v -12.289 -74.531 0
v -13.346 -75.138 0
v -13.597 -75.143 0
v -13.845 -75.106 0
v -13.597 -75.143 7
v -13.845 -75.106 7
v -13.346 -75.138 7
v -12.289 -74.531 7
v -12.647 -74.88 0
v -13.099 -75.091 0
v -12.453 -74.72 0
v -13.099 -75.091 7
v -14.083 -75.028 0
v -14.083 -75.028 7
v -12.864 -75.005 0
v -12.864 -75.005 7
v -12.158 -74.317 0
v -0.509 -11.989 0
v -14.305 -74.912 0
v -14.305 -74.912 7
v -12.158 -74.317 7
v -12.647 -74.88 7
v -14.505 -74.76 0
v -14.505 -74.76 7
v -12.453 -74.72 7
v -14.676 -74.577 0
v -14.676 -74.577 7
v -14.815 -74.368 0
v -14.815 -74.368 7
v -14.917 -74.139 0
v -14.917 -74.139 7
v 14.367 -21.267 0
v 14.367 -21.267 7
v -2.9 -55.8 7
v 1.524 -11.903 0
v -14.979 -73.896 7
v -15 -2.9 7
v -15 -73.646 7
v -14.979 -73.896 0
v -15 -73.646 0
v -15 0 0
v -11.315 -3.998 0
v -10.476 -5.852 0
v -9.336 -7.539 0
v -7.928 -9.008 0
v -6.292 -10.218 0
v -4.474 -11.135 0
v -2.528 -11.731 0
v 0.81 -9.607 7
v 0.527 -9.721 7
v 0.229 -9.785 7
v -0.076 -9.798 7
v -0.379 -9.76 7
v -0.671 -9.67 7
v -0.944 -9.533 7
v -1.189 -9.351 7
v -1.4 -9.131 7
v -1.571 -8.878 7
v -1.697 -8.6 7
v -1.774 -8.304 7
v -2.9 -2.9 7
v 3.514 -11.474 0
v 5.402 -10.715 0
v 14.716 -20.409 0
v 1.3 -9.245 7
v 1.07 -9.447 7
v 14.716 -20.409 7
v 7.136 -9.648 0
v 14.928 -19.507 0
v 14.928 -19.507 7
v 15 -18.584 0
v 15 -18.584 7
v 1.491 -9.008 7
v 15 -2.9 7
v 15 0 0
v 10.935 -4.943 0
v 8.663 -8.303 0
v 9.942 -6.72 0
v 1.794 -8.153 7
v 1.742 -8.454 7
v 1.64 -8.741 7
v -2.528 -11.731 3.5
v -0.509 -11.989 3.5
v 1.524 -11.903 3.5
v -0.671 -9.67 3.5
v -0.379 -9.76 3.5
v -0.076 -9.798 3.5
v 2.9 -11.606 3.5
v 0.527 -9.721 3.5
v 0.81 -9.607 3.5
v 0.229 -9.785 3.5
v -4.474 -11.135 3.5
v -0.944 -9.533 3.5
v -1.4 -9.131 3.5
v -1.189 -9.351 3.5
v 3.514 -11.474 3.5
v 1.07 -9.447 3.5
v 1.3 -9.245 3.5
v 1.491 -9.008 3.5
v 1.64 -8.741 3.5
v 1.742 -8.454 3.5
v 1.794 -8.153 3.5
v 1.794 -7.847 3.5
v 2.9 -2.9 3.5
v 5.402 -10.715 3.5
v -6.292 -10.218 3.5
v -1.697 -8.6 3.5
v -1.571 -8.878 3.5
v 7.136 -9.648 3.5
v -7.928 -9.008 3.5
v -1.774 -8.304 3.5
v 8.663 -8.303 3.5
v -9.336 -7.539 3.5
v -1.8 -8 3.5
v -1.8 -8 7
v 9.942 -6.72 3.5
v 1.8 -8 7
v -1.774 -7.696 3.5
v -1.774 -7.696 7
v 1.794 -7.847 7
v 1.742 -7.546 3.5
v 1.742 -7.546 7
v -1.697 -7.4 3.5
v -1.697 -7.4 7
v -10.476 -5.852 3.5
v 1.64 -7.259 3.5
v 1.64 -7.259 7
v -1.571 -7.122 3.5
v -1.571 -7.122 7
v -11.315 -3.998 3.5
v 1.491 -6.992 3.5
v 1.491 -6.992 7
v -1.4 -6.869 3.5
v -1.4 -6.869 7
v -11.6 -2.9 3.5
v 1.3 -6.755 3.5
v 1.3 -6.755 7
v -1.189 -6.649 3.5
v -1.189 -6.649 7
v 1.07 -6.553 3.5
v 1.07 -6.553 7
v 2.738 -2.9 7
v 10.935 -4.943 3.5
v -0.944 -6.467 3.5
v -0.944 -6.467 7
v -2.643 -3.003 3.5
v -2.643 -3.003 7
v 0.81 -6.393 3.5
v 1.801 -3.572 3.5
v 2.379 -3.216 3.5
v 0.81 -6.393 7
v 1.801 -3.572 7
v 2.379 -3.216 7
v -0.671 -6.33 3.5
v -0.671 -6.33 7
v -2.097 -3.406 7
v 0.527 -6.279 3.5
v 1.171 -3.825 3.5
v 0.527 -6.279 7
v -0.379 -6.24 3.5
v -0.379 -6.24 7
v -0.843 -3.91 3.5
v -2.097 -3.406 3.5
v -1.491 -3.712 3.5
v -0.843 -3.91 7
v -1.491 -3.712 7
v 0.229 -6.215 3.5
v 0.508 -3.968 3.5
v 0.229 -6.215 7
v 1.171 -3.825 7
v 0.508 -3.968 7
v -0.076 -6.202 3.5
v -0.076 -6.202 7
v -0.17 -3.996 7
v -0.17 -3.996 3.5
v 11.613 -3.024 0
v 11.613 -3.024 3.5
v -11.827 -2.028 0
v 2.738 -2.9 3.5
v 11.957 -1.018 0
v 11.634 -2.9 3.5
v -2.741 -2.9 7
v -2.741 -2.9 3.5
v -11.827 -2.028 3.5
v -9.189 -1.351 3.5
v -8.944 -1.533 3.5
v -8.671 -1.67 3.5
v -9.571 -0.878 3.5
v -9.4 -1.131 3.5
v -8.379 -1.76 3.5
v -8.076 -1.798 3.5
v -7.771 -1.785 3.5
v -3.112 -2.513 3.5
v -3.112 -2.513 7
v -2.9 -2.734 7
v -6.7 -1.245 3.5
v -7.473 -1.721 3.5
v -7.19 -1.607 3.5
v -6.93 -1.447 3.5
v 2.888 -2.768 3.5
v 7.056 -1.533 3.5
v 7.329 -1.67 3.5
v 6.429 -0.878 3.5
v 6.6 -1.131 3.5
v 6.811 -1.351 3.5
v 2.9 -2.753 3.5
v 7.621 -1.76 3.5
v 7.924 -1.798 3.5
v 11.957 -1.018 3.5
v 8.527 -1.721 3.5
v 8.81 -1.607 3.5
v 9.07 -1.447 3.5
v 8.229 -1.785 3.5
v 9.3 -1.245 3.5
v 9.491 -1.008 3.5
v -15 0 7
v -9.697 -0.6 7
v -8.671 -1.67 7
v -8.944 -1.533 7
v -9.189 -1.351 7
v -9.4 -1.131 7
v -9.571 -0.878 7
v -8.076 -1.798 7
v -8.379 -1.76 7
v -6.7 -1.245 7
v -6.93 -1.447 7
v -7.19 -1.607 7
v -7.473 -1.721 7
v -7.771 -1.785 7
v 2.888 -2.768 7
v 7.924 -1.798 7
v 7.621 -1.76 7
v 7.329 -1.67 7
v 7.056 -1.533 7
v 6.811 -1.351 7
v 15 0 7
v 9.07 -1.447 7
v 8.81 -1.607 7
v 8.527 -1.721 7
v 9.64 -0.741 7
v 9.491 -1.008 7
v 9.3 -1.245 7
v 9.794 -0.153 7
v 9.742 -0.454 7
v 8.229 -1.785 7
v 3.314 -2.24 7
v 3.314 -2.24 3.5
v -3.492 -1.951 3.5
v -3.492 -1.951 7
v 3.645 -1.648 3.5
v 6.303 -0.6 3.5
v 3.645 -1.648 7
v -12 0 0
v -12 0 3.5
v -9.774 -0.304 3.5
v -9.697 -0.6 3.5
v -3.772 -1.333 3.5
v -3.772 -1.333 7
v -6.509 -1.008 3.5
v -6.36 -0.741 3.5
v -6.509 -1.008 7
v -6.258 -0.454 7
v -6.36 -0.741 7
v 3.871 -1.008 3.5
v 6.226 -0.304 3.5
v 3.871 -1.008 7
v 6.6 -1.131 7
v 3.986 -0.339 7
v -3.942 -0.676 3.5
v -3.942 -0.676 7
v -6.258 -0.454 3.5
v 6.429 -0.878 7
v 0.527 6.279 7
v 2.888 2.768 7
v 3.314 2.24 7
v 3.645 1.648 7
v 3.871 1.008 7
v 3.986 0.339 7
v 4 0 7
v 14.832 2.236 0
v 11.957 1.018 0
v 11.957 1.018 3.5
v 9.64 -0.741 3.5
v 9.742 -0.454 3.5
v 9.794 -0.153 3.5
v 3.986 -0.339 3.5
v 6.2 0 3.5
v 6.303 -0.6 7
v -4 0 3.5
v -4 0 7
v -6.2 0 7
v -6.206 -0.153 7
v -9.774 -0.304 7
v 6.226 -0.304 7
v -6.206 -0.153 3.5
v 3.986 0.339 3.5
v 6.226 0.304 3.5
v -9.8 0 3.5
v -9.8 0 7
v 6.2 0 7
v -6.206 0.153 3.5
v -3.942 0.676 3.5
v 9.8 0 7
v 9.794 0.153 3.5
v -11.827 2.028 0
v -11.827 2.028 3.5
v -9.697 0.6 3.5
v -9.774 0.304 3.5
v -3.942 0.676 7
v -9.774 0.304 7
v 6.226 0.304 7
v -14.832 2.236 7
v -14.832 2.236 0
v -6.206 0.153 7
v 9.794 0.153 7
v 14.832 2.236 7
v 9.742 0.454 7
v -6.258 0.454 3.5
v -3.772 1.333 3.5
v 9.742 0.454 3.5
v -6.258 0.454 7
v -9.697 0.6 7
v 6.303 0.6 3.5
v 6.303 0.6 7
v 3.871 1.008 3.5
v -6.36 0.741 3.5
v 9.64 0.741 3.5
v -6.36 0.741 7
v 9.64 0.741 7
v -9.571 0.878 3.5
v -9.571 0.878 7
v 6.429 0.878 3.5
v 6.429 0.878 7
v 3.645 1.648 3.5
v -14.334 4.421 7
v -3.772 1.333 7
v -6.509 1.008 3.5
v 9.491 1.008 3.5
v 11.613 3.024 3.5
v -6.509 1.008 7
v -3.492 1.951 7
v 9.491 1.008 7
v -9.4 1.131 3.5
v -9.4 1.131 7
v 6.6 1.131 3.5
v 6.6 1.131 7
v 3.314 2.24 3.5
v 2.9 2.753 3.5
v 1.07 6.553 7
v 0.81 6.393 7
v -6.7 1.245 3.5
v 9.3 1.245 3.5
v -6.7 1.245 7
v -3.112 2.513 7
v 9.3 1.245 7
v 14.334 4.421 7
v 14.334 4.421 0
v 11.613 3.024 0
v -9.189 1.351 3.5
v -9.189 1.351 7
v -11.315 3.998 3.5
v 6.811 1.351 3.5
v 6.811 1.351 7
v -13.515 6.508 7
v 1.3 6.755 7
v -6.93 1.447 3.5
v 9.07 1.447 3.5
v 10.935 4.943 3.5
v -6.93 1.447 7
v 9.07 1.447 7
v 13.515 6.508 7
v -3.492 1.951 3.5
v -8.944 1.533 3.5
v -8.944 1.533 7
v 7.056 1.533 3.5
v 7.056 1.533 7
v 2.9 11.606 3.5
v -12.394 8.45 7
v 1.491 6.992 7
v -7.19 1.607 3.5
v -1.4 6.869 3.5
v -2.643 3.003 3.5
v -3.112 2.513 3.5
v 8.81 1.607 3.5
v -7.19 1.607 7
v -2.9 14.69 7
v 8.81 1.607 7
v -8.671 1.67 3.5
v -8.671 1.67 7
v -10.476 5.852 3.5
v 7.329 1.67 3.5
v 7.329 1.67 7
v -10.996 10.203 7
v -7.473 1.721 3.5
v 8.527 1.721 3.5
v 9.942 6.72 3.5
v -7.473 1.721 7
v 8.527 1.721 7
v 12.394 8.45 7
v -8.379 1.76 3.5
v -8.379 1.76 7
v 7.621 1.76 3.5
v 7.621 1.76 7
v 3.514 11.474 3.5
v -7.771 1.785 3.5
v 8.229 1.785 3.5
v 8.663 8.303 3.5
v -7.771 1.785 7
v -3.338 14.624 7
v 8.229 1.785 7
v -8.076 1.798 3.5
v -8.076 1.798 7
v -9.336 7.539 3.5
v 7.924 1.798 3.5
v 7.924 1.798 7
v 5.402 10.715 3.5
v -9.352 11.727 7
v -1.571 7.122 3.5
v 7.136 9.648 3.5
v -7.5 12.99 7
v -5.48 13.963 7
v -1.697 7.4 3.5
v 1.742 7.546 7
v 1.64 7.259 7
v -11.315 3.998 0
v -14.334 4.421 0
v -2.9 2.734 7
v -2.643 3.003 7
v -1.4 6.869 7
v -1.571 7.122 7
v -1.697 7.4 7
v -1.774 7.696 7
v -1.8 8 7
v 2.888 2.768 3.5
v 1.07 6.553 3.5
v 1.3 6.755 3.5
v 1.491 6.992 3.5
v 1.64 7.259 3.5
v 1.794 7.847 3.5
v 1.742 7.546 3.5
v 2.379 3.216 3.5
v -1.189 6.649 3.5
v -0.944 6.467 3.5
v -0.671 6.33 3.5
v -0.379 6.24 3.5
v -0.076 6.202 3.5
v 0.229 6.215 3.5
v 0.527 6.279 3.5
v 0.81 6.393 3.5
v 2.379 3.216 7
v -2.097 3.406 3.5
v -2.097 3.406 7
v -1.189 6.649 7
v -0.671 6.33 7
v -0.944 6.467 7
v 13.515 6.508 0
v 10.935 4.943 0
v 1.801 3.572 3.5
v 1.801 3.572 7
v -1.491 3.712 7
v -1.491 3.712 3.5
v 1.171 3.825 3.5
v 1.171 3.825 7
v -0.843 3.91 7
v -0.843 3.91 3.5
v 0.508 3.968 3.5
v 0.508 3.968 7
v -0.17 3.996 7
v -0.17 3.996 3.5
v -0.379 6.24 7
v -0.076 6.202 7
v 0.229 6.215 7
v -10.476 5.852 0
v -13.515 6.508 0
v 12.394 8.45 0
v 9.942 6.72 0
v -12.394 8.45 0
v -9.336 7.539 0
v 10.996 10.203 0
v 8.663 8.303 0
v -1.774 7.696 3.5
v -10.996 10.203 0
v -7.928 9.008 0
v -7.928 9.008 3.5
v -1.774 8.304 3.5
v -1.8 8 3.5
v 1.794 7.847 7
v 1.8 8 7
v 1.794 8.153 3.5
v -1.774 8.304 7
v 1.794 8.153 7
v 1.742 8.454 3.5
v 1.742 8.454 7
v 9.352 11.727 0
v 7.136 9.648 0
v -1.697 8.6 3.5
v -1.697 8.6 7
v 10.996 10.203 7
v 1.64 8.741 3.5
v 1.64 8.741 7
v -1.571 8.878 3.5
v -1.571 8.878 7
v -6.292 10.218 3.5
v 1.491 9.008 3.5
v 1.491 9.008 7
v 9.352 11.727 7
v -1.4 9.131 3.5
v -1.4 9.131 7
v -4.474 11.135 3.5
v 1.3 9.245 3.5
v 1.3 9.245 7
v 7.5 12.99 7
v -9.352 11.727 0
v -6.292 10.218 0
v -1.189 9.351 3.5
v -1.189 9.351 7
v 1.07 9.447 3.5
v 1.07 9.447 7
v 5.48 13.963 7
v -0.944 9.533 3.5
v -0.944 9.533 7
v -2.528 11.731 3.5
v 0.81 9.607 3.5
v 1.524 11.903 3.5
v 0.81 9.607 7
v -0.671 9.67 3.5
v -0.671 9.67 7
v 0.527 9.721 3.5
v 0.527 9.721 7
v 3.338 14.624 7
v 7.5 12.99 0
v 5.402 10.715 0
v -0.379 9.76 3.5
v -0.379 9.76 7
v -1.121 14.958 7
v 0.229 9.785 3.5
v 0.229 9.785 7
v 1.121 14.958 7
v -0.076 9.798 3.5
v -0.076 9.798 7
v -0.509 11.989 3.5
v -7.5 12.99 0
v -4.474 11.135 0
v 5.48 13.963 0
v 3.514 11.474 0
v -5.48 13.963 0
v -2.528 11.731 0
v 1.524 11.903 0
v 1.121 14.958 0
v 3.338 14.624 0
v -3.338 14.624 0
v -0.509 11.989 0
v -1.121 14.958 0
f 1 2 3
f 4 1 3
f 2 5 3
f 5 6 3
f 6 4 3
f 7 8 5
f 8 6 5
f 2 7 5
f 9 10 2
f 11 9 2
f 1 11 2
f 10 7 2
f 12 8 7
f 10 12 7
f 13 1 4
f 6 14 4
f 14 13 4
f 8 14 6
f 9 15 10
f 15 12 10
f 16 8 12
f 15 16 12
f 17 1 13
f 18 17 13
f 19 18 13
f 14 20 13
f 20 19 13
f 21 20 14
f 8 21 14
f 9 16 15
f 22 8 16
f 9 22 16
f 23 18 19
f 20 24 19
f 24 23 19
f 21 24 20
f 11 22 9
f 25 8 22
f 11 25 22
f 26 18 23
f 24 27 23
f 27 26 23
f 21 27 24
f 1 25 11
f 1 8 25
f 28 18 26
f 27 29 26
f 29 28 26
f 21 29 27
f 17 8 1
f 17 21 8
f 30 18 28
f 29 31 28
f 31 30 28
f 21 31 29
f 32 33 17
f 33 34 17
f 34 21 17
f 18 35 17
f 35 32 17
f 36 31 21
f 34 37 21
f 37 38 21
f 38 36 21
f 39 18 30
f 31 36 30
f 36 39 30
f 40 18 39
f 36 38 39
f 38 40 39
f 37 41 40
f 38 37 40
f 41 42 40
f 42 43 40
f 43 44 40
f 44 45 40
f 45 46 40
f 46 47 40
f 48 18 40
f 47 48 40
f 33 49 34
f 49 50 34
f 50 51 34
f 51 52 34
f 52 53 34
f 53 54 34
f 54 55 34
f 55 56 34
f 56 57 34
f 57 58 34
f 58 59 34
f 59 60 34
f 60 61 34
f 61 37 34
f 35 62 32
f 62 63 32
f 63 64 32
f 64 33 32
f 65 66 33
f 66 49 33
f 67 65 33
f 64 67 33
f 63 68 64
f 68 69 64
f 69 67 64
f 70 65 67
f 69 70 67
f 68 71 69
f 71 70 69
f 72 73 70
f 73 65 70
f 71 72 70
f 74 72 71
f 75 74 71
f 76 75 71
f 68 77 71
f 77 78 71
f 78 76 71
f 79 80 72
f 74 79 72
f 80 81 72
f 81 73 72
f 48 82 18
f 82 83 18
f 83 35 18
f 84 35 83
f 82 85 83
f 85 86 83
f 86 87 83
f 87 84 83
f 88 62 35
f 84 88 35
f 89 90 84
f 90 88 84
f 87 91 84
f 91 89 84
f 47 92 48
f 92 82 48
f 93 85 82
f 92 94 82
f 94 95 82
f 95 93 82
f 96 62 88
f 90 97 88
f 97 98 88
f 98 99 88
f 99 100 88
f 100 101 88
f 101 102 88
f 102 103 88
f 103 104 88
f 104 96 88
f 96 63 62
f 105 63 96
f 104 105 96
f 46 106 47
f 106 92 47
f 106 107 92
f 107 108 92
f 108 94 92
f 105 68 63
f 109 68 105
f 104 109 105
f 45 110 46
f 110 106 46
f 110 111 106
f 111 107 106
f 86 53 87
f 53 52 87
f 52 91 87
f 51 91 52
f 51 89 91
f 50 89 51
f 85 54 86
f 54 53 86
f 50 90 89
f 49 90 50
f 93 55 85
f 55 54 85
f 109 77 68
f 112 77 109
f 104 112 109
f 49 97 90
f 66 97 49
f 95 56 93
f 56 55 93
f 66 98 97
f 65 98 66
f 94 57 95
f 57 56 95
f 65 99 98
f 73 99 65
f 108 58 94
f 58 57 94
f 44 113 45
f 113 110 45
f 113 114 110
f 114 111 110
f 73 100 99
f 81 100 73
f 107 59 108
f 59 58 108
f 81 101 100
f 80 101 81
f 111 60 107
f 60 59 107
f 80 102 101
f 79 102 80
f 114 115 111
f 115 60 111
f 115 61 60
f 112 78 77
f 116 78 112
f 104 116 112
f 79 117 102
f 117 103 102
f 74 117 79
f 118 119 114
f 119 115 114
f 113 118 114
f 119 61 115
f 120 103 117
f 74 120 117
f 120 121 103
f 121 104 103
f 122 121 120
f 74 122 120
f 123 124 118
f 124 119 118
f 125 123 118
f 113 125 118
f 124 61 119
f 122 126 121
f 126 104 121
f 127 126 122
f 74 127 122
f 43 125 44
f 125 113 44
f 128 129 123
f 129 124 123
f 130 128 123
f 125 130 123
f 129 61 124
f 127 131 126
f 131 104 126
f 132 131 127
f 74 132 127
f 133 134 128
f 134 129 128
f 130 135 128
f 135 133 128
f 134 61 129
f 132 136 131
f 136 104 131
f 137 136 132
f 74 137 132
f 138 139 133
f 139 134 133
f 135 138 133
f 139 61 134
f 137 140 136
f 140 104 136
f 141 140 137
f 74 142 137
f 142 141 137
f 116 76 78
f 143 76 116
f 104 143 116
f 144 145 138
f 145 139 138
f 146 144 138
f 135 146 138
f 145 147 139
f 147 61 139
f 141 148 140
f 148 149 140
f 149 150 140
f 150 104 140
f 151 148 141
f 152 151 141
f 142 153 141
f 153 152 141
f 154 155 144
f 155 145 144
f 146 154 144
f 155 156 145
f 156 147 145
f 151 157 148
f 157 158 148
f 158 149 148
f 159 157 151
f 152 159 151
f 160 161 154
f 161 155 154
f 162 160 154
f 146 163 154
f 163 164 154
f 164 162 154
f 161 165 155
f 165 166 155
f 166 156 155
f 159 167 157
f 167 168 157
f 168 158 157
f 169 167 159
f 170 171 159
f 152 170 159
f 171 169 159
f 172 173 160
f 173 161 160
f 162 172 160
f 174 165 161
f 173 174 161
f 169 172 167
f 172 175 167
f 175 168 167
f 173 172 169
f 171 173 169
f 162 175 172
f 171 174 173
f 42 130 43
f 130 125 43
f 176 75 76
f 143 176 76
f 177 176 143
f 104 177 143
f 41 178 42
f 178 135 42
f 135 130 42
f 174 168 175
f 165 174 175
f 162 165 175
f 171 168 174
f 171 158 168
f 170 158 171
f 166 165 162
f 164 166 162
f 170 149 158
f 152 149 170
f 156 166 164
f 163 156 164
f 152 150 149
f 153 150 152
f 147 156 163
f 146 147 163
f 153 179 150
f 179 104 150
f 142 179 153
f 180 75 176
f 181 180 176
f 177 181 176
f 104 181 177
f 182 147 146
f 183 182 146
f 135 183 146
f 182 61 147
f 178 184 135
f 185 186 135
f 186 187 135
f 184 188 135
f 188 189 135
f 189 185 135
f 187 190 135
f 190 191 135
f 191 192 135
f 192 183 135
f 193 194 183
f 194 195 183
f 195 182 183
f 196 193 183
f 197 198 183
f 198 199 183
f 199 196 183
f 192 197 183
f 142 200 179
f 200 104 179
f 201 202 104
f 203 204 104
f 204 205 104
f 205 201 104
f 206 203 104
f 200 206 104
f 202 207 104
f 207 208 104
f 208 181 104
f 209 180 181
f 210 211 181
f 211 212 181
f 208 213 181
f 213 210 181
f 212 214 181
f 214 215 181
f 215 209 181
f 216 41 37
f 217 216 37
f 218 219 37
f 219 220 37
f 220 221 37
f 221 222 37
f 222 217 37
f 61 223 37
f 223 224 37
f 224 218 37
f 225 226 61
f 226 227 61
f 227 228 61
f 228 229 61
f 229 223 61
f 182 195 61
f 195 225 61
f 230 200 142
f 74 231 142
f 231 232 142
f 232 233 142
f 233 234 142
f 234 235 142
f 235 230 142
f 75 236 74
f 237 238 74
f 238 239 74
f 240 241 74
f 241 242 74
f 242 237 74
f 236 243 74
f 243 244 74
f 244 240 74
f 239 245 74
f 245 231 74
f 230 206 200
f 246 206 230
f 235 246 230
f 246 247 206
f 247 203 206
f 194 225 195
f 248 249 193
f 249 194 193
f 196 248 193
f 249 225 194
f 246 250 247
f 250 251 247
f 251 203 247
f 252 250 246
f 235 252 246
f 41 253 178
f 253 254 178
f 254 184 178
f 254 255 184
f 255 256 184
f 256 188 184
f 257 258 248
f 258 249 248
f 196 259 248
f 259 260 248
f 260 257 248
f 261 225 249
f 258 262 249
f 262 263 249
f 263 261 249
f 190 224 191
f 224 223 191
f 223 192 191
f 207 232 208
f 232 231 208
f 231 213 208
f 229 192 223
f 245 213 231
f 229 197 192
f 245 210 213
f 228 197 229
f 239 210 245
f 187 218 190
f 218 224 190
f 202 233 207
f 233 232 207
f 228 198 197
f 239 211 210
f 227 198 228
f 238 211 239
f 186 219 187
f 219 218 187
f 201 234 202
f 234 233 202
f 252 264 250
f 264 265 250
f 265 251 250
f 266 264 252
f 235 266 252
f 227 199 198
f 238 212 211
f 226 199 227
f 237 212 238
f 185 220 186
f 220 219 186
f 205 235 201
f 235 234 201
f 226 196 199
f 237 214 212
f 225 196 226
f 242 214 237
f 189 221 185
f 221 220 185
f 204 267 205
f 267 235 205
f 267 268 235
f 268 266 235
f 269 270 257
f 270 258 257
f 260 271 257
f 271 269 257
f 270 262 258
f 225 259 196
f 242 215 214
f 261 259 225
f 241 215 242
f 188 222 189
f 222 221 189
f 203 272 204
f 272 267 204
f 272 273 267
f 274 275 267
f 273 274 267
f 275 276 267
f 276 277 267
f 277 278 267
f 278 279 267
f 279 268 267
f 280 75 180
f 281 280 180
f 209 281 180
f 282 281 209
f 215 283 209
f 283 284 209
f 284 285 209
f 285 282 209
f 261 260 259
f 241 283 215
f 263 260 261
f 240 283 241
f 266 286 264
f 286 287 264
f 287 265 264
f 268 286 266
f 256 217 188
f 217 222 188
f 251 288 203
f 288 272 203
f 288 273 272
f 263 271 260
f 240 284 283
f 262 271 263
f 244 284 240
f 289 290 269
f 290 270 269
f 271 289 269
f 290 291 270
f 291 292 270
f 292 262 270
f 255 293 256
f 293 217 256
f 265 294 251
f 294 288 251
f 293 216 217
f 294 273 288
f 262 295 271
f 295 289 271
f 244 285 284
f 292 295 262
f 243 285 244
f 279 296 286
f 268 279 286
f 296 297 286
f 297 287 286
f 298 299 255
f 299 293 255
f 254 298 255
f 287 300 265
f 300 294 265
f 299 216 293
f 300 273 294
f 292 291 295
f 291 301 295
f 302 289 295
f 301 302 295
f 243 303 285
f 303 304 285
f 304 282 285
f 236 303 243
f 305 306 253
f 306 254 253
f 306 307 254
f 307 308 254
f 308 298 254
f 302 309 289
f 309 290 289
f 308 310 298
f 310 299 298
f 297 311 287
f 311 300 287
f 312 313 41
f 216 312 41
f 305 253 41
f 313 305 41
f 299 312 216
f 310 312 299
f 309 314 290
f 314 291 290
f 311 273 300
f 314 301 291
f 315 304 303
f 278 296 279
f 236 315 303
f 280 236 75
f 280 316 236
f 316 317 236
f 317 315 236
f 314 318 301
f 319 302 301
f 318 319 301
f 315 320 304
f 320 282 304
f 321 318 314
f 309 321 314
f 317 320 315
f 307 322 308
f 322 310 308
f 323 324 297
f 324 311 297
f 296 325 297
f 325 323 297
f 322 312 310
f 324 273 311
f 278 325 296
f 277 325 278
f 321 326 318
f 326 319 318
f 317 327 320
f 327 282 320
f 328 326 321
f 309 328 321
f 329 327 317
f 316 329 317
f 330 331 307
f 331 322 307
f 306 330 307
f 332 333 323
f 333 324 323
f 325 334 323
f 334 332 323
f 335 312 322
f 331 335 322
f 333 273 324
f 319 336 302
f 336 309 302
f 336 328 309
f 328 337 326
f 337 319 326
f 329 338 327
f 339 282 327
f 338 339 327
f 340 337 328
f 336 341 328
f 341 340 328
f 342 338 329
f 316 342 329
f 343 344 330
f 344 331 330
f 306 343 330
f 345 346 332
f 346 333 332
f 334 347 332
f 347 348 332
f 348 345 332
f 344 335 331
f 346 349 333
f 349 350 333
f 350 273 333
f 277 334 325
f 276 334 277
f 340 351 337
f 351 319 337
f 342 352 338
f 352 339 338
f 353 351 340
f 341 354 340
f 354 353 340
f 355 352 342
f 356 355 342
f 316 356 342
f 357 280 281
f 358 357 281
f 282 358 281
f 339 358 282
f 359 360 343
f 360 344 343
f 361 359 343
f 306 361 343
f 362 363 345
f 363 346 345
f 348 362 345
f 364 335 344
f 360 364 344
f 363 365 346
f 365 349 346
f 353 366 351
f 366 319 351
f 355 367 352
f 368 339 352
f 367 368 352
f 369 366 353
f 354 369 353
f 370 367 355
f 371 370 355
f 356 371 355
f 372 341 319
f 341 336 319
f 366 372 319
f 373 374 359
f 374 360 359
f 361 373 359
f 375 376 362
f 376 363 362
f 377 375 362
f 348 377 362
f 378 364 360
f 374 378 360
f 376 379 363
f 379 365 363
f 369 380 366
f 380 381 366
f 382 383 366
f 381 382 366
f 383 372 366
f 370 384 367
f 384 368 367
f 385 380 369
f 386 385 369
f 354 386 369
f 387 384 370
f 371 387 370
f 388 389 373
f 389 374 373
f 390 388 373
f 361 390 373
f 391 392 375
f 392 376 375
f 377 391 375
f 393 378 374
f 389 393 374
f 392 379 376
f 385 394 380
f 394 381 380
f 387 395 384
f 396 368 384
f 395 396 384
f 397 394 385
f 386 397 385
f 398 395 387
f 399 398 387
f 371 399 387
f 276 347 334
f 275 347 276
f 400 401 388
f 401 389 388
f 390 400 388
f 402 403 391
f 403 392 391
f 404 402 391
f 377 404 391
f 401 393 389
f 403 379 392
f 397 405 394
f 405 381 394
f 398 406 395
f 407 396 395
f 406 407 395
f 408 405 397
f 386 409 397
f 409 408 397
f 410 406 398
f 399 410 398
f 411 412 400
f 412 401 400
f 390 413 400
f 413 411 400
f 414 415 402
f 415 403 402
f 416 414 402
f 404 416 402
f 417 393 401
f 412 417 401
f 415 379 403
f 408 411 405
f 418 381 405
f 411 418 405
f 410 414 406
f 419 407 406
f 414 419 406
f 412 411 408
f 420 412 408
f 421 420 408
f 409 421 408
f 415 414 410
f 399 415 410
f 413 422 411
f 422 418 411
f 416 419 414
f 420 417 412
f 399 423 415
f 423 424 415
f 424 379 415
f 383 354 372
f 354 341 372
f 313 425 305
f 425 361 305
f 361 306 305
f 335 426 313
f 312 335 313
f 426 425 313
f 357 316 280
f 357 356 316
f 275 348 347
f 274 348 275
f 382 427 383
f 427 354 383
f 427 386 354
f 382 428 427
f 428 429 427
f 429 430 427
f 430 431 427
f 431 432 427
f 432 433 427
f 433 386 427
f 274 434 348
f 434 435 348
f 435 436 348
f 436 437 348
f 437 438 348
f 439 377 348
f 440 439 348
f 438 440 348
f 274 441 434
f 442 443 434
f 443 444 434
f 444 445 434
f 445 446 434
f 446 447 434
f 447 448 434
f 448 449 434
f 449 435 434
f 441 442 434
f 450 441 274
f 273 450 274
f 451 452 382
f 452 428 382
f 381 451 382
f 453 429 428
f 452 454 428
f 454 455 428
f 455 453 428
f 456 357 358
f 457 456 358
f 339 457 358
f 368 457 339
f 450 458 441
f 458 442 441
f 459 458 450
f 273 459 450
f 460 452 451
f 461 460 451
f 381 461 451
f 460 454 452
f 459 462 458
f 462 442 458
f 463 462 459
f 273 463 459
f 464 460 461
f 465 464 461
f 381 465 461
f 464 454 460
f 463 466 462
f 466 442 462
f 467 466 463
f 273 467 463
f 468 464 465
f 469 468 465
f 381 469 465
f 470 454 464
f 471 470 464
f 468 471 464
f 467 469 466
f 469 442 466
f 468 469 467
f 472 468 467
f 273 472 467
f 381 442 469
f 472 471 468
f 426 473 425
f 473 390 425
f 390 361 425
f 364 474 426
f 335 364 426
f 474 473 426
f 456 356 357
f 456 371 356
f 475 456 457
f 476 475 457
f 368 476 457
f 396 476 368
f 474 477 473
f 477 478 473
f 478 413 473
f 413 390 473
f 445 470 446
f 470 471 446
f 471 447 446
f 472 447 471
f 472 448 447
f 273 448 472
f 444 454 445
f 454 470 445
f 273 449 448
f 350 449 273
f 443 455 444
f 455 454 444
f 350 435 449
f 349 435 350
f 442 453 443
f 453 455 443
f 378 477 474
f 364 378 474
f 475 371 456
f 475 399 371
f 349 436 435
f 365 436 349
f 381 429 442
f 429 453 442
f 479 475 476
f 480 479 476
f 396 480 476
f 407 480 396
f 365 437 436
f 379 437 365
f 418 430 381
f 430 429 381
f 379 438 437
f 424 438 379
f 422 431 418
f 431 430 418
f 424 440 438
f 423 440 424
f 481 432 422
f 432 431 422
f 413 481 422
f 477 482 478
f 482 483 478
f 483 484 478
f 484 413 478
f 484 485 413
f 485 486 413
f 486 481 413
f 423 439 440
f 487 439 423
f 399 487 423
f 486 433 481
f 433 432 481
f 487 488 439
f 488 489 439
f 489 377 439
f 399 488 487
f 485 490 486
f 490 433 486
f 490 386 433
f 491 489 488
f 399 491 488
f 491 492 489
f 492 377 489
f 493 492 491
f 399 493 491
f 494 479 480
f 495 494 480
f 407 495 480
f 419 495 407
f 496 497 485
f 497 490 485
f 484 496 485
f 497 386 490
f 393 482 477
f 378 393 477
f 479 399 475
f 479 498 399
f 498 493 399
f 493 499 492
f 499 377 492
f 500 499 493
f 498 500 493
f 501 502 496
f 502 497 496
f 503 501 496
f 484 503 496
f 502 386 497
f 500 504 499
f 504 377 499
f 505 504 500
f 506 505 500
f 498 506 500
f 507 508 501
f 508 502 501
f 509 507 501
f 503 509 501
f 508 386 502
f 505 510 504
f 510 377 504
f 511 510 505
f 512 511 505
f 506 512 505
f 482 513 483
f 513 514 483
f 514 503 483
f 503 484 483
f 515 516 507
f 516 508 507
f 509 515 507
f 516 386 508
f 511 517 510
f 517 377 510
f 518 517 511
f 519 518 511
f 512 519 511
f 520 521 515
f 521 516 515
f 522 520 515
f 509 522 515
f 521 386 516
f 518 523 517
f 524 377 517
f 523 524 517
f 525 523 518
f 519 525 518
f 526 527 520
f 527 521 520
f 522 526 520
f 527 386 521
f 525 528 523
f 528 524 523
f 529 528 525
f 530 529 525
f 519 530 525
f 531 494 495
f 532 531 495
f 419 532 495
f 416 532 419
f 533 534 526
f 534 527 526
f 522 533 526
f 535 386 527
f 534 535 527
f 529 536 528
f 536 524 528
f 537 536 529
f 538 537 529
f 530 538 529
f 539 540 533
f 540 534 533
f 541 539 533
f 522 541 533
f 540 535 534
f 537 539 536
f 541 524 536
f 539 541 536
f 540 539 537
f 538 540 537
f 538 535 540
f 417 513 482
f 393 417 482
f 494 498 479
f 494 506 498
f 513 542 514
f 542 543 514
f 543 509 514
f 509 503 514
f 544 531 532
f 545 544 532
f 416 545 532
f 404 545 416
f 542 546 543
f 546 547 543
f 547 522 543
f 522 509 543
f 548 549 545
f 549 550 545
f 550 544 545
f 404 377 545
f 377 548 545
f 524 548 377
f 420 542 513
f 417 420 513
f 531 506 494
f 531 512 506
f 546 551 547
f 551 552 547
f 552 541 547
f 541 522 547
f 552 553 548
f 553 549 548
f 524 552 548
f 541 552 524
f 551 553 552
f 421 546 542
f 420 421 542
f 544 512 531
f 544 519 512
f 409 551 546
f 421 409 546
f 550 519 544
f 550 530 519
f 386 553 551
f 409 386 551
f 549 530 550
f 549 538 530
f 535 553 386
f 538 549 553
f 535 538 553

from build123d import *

# Parameters (mm, degrees)
ESQUISSE1_R             = 15
ESQUISSE1_R_2           = 1.8
ESQUISSE1_R_3           = 4
BOSS_EXTRU_1_DEPTH      = 7
CONG_1_R                = 1.5
CONG_2_R                = 6
ESQUISSE3_R             = 12
ENL_V_MAT_EXTRU_2_DEPTH = 3.5


with BuildPart() as part:
    # Esquisse1 → Boss.-Extru.1 (new body)
    # profile 1 of 2: a face of its own
    with BuildSketch(Plane.XY):
        with BuildLine():
            ThreePointArc((15, 0), (0, -15), (-15, 0))
            Line((-15, 0), (-15, -80))
            Line((-15, -80), (15, -20))
            Line((15, -20), (15, 0))
        make_face()
    # profile 2 of 2: a face of its own
    with BuildSketch(Plane.XY):
        Circle(ESQUISSE1_R)
        with Locations((-8, 0)):
            Circle(ESQUISSE1_R_2, mode=Mode.SUBTRACT)
        with Locations((0, -8)):
            Circle(ESQUISSE1_R_2, mode=Mode.SUBTRACT)
        with Locations((8, 0)):
            Circle(ESQUISSE1_R_2, mode=Mode.SUBTRACT)
        with Locations((0, 8)):
            Circle(ESQUISSE1_R_2, mode=Mode.SUBTRACT)
        Circle(ESQUISSE1_R_3, mode=Mode.SUBTRACT)
    extrude(amount=BOSS_EXTRU_1_DEPTH)

    # Congé1
    cong_1_edges = [part.edges().sort_by_distance(p)[0] for p in [
        (-15, -80, 3.5),
    ]]
    fillet(cong_1_edges, radius=CONG_1_R)

    # Congé2
    cong_2_edges = [part.edges().sort_by_distance(p)[0] for p in [
        (15, -20, 3.5),
    ]]
    fillet(cong_2_edges, radius=CONG_2_R)

    # Esquisse3 → Enlèv. mat.-Extru.2 (cut)
    with BuildSketch(Plane(origin=(0, 0, 0), x_dir=(-1, 0, 0), z_dir=(0, 0, -1))):
        Circle(ESQUISSE3_R)
    extrude(amount=-ENL_V_MAT_EXTRU_2_DEPTH, mode=Mode.SUBTRACT)


solid = part.part
